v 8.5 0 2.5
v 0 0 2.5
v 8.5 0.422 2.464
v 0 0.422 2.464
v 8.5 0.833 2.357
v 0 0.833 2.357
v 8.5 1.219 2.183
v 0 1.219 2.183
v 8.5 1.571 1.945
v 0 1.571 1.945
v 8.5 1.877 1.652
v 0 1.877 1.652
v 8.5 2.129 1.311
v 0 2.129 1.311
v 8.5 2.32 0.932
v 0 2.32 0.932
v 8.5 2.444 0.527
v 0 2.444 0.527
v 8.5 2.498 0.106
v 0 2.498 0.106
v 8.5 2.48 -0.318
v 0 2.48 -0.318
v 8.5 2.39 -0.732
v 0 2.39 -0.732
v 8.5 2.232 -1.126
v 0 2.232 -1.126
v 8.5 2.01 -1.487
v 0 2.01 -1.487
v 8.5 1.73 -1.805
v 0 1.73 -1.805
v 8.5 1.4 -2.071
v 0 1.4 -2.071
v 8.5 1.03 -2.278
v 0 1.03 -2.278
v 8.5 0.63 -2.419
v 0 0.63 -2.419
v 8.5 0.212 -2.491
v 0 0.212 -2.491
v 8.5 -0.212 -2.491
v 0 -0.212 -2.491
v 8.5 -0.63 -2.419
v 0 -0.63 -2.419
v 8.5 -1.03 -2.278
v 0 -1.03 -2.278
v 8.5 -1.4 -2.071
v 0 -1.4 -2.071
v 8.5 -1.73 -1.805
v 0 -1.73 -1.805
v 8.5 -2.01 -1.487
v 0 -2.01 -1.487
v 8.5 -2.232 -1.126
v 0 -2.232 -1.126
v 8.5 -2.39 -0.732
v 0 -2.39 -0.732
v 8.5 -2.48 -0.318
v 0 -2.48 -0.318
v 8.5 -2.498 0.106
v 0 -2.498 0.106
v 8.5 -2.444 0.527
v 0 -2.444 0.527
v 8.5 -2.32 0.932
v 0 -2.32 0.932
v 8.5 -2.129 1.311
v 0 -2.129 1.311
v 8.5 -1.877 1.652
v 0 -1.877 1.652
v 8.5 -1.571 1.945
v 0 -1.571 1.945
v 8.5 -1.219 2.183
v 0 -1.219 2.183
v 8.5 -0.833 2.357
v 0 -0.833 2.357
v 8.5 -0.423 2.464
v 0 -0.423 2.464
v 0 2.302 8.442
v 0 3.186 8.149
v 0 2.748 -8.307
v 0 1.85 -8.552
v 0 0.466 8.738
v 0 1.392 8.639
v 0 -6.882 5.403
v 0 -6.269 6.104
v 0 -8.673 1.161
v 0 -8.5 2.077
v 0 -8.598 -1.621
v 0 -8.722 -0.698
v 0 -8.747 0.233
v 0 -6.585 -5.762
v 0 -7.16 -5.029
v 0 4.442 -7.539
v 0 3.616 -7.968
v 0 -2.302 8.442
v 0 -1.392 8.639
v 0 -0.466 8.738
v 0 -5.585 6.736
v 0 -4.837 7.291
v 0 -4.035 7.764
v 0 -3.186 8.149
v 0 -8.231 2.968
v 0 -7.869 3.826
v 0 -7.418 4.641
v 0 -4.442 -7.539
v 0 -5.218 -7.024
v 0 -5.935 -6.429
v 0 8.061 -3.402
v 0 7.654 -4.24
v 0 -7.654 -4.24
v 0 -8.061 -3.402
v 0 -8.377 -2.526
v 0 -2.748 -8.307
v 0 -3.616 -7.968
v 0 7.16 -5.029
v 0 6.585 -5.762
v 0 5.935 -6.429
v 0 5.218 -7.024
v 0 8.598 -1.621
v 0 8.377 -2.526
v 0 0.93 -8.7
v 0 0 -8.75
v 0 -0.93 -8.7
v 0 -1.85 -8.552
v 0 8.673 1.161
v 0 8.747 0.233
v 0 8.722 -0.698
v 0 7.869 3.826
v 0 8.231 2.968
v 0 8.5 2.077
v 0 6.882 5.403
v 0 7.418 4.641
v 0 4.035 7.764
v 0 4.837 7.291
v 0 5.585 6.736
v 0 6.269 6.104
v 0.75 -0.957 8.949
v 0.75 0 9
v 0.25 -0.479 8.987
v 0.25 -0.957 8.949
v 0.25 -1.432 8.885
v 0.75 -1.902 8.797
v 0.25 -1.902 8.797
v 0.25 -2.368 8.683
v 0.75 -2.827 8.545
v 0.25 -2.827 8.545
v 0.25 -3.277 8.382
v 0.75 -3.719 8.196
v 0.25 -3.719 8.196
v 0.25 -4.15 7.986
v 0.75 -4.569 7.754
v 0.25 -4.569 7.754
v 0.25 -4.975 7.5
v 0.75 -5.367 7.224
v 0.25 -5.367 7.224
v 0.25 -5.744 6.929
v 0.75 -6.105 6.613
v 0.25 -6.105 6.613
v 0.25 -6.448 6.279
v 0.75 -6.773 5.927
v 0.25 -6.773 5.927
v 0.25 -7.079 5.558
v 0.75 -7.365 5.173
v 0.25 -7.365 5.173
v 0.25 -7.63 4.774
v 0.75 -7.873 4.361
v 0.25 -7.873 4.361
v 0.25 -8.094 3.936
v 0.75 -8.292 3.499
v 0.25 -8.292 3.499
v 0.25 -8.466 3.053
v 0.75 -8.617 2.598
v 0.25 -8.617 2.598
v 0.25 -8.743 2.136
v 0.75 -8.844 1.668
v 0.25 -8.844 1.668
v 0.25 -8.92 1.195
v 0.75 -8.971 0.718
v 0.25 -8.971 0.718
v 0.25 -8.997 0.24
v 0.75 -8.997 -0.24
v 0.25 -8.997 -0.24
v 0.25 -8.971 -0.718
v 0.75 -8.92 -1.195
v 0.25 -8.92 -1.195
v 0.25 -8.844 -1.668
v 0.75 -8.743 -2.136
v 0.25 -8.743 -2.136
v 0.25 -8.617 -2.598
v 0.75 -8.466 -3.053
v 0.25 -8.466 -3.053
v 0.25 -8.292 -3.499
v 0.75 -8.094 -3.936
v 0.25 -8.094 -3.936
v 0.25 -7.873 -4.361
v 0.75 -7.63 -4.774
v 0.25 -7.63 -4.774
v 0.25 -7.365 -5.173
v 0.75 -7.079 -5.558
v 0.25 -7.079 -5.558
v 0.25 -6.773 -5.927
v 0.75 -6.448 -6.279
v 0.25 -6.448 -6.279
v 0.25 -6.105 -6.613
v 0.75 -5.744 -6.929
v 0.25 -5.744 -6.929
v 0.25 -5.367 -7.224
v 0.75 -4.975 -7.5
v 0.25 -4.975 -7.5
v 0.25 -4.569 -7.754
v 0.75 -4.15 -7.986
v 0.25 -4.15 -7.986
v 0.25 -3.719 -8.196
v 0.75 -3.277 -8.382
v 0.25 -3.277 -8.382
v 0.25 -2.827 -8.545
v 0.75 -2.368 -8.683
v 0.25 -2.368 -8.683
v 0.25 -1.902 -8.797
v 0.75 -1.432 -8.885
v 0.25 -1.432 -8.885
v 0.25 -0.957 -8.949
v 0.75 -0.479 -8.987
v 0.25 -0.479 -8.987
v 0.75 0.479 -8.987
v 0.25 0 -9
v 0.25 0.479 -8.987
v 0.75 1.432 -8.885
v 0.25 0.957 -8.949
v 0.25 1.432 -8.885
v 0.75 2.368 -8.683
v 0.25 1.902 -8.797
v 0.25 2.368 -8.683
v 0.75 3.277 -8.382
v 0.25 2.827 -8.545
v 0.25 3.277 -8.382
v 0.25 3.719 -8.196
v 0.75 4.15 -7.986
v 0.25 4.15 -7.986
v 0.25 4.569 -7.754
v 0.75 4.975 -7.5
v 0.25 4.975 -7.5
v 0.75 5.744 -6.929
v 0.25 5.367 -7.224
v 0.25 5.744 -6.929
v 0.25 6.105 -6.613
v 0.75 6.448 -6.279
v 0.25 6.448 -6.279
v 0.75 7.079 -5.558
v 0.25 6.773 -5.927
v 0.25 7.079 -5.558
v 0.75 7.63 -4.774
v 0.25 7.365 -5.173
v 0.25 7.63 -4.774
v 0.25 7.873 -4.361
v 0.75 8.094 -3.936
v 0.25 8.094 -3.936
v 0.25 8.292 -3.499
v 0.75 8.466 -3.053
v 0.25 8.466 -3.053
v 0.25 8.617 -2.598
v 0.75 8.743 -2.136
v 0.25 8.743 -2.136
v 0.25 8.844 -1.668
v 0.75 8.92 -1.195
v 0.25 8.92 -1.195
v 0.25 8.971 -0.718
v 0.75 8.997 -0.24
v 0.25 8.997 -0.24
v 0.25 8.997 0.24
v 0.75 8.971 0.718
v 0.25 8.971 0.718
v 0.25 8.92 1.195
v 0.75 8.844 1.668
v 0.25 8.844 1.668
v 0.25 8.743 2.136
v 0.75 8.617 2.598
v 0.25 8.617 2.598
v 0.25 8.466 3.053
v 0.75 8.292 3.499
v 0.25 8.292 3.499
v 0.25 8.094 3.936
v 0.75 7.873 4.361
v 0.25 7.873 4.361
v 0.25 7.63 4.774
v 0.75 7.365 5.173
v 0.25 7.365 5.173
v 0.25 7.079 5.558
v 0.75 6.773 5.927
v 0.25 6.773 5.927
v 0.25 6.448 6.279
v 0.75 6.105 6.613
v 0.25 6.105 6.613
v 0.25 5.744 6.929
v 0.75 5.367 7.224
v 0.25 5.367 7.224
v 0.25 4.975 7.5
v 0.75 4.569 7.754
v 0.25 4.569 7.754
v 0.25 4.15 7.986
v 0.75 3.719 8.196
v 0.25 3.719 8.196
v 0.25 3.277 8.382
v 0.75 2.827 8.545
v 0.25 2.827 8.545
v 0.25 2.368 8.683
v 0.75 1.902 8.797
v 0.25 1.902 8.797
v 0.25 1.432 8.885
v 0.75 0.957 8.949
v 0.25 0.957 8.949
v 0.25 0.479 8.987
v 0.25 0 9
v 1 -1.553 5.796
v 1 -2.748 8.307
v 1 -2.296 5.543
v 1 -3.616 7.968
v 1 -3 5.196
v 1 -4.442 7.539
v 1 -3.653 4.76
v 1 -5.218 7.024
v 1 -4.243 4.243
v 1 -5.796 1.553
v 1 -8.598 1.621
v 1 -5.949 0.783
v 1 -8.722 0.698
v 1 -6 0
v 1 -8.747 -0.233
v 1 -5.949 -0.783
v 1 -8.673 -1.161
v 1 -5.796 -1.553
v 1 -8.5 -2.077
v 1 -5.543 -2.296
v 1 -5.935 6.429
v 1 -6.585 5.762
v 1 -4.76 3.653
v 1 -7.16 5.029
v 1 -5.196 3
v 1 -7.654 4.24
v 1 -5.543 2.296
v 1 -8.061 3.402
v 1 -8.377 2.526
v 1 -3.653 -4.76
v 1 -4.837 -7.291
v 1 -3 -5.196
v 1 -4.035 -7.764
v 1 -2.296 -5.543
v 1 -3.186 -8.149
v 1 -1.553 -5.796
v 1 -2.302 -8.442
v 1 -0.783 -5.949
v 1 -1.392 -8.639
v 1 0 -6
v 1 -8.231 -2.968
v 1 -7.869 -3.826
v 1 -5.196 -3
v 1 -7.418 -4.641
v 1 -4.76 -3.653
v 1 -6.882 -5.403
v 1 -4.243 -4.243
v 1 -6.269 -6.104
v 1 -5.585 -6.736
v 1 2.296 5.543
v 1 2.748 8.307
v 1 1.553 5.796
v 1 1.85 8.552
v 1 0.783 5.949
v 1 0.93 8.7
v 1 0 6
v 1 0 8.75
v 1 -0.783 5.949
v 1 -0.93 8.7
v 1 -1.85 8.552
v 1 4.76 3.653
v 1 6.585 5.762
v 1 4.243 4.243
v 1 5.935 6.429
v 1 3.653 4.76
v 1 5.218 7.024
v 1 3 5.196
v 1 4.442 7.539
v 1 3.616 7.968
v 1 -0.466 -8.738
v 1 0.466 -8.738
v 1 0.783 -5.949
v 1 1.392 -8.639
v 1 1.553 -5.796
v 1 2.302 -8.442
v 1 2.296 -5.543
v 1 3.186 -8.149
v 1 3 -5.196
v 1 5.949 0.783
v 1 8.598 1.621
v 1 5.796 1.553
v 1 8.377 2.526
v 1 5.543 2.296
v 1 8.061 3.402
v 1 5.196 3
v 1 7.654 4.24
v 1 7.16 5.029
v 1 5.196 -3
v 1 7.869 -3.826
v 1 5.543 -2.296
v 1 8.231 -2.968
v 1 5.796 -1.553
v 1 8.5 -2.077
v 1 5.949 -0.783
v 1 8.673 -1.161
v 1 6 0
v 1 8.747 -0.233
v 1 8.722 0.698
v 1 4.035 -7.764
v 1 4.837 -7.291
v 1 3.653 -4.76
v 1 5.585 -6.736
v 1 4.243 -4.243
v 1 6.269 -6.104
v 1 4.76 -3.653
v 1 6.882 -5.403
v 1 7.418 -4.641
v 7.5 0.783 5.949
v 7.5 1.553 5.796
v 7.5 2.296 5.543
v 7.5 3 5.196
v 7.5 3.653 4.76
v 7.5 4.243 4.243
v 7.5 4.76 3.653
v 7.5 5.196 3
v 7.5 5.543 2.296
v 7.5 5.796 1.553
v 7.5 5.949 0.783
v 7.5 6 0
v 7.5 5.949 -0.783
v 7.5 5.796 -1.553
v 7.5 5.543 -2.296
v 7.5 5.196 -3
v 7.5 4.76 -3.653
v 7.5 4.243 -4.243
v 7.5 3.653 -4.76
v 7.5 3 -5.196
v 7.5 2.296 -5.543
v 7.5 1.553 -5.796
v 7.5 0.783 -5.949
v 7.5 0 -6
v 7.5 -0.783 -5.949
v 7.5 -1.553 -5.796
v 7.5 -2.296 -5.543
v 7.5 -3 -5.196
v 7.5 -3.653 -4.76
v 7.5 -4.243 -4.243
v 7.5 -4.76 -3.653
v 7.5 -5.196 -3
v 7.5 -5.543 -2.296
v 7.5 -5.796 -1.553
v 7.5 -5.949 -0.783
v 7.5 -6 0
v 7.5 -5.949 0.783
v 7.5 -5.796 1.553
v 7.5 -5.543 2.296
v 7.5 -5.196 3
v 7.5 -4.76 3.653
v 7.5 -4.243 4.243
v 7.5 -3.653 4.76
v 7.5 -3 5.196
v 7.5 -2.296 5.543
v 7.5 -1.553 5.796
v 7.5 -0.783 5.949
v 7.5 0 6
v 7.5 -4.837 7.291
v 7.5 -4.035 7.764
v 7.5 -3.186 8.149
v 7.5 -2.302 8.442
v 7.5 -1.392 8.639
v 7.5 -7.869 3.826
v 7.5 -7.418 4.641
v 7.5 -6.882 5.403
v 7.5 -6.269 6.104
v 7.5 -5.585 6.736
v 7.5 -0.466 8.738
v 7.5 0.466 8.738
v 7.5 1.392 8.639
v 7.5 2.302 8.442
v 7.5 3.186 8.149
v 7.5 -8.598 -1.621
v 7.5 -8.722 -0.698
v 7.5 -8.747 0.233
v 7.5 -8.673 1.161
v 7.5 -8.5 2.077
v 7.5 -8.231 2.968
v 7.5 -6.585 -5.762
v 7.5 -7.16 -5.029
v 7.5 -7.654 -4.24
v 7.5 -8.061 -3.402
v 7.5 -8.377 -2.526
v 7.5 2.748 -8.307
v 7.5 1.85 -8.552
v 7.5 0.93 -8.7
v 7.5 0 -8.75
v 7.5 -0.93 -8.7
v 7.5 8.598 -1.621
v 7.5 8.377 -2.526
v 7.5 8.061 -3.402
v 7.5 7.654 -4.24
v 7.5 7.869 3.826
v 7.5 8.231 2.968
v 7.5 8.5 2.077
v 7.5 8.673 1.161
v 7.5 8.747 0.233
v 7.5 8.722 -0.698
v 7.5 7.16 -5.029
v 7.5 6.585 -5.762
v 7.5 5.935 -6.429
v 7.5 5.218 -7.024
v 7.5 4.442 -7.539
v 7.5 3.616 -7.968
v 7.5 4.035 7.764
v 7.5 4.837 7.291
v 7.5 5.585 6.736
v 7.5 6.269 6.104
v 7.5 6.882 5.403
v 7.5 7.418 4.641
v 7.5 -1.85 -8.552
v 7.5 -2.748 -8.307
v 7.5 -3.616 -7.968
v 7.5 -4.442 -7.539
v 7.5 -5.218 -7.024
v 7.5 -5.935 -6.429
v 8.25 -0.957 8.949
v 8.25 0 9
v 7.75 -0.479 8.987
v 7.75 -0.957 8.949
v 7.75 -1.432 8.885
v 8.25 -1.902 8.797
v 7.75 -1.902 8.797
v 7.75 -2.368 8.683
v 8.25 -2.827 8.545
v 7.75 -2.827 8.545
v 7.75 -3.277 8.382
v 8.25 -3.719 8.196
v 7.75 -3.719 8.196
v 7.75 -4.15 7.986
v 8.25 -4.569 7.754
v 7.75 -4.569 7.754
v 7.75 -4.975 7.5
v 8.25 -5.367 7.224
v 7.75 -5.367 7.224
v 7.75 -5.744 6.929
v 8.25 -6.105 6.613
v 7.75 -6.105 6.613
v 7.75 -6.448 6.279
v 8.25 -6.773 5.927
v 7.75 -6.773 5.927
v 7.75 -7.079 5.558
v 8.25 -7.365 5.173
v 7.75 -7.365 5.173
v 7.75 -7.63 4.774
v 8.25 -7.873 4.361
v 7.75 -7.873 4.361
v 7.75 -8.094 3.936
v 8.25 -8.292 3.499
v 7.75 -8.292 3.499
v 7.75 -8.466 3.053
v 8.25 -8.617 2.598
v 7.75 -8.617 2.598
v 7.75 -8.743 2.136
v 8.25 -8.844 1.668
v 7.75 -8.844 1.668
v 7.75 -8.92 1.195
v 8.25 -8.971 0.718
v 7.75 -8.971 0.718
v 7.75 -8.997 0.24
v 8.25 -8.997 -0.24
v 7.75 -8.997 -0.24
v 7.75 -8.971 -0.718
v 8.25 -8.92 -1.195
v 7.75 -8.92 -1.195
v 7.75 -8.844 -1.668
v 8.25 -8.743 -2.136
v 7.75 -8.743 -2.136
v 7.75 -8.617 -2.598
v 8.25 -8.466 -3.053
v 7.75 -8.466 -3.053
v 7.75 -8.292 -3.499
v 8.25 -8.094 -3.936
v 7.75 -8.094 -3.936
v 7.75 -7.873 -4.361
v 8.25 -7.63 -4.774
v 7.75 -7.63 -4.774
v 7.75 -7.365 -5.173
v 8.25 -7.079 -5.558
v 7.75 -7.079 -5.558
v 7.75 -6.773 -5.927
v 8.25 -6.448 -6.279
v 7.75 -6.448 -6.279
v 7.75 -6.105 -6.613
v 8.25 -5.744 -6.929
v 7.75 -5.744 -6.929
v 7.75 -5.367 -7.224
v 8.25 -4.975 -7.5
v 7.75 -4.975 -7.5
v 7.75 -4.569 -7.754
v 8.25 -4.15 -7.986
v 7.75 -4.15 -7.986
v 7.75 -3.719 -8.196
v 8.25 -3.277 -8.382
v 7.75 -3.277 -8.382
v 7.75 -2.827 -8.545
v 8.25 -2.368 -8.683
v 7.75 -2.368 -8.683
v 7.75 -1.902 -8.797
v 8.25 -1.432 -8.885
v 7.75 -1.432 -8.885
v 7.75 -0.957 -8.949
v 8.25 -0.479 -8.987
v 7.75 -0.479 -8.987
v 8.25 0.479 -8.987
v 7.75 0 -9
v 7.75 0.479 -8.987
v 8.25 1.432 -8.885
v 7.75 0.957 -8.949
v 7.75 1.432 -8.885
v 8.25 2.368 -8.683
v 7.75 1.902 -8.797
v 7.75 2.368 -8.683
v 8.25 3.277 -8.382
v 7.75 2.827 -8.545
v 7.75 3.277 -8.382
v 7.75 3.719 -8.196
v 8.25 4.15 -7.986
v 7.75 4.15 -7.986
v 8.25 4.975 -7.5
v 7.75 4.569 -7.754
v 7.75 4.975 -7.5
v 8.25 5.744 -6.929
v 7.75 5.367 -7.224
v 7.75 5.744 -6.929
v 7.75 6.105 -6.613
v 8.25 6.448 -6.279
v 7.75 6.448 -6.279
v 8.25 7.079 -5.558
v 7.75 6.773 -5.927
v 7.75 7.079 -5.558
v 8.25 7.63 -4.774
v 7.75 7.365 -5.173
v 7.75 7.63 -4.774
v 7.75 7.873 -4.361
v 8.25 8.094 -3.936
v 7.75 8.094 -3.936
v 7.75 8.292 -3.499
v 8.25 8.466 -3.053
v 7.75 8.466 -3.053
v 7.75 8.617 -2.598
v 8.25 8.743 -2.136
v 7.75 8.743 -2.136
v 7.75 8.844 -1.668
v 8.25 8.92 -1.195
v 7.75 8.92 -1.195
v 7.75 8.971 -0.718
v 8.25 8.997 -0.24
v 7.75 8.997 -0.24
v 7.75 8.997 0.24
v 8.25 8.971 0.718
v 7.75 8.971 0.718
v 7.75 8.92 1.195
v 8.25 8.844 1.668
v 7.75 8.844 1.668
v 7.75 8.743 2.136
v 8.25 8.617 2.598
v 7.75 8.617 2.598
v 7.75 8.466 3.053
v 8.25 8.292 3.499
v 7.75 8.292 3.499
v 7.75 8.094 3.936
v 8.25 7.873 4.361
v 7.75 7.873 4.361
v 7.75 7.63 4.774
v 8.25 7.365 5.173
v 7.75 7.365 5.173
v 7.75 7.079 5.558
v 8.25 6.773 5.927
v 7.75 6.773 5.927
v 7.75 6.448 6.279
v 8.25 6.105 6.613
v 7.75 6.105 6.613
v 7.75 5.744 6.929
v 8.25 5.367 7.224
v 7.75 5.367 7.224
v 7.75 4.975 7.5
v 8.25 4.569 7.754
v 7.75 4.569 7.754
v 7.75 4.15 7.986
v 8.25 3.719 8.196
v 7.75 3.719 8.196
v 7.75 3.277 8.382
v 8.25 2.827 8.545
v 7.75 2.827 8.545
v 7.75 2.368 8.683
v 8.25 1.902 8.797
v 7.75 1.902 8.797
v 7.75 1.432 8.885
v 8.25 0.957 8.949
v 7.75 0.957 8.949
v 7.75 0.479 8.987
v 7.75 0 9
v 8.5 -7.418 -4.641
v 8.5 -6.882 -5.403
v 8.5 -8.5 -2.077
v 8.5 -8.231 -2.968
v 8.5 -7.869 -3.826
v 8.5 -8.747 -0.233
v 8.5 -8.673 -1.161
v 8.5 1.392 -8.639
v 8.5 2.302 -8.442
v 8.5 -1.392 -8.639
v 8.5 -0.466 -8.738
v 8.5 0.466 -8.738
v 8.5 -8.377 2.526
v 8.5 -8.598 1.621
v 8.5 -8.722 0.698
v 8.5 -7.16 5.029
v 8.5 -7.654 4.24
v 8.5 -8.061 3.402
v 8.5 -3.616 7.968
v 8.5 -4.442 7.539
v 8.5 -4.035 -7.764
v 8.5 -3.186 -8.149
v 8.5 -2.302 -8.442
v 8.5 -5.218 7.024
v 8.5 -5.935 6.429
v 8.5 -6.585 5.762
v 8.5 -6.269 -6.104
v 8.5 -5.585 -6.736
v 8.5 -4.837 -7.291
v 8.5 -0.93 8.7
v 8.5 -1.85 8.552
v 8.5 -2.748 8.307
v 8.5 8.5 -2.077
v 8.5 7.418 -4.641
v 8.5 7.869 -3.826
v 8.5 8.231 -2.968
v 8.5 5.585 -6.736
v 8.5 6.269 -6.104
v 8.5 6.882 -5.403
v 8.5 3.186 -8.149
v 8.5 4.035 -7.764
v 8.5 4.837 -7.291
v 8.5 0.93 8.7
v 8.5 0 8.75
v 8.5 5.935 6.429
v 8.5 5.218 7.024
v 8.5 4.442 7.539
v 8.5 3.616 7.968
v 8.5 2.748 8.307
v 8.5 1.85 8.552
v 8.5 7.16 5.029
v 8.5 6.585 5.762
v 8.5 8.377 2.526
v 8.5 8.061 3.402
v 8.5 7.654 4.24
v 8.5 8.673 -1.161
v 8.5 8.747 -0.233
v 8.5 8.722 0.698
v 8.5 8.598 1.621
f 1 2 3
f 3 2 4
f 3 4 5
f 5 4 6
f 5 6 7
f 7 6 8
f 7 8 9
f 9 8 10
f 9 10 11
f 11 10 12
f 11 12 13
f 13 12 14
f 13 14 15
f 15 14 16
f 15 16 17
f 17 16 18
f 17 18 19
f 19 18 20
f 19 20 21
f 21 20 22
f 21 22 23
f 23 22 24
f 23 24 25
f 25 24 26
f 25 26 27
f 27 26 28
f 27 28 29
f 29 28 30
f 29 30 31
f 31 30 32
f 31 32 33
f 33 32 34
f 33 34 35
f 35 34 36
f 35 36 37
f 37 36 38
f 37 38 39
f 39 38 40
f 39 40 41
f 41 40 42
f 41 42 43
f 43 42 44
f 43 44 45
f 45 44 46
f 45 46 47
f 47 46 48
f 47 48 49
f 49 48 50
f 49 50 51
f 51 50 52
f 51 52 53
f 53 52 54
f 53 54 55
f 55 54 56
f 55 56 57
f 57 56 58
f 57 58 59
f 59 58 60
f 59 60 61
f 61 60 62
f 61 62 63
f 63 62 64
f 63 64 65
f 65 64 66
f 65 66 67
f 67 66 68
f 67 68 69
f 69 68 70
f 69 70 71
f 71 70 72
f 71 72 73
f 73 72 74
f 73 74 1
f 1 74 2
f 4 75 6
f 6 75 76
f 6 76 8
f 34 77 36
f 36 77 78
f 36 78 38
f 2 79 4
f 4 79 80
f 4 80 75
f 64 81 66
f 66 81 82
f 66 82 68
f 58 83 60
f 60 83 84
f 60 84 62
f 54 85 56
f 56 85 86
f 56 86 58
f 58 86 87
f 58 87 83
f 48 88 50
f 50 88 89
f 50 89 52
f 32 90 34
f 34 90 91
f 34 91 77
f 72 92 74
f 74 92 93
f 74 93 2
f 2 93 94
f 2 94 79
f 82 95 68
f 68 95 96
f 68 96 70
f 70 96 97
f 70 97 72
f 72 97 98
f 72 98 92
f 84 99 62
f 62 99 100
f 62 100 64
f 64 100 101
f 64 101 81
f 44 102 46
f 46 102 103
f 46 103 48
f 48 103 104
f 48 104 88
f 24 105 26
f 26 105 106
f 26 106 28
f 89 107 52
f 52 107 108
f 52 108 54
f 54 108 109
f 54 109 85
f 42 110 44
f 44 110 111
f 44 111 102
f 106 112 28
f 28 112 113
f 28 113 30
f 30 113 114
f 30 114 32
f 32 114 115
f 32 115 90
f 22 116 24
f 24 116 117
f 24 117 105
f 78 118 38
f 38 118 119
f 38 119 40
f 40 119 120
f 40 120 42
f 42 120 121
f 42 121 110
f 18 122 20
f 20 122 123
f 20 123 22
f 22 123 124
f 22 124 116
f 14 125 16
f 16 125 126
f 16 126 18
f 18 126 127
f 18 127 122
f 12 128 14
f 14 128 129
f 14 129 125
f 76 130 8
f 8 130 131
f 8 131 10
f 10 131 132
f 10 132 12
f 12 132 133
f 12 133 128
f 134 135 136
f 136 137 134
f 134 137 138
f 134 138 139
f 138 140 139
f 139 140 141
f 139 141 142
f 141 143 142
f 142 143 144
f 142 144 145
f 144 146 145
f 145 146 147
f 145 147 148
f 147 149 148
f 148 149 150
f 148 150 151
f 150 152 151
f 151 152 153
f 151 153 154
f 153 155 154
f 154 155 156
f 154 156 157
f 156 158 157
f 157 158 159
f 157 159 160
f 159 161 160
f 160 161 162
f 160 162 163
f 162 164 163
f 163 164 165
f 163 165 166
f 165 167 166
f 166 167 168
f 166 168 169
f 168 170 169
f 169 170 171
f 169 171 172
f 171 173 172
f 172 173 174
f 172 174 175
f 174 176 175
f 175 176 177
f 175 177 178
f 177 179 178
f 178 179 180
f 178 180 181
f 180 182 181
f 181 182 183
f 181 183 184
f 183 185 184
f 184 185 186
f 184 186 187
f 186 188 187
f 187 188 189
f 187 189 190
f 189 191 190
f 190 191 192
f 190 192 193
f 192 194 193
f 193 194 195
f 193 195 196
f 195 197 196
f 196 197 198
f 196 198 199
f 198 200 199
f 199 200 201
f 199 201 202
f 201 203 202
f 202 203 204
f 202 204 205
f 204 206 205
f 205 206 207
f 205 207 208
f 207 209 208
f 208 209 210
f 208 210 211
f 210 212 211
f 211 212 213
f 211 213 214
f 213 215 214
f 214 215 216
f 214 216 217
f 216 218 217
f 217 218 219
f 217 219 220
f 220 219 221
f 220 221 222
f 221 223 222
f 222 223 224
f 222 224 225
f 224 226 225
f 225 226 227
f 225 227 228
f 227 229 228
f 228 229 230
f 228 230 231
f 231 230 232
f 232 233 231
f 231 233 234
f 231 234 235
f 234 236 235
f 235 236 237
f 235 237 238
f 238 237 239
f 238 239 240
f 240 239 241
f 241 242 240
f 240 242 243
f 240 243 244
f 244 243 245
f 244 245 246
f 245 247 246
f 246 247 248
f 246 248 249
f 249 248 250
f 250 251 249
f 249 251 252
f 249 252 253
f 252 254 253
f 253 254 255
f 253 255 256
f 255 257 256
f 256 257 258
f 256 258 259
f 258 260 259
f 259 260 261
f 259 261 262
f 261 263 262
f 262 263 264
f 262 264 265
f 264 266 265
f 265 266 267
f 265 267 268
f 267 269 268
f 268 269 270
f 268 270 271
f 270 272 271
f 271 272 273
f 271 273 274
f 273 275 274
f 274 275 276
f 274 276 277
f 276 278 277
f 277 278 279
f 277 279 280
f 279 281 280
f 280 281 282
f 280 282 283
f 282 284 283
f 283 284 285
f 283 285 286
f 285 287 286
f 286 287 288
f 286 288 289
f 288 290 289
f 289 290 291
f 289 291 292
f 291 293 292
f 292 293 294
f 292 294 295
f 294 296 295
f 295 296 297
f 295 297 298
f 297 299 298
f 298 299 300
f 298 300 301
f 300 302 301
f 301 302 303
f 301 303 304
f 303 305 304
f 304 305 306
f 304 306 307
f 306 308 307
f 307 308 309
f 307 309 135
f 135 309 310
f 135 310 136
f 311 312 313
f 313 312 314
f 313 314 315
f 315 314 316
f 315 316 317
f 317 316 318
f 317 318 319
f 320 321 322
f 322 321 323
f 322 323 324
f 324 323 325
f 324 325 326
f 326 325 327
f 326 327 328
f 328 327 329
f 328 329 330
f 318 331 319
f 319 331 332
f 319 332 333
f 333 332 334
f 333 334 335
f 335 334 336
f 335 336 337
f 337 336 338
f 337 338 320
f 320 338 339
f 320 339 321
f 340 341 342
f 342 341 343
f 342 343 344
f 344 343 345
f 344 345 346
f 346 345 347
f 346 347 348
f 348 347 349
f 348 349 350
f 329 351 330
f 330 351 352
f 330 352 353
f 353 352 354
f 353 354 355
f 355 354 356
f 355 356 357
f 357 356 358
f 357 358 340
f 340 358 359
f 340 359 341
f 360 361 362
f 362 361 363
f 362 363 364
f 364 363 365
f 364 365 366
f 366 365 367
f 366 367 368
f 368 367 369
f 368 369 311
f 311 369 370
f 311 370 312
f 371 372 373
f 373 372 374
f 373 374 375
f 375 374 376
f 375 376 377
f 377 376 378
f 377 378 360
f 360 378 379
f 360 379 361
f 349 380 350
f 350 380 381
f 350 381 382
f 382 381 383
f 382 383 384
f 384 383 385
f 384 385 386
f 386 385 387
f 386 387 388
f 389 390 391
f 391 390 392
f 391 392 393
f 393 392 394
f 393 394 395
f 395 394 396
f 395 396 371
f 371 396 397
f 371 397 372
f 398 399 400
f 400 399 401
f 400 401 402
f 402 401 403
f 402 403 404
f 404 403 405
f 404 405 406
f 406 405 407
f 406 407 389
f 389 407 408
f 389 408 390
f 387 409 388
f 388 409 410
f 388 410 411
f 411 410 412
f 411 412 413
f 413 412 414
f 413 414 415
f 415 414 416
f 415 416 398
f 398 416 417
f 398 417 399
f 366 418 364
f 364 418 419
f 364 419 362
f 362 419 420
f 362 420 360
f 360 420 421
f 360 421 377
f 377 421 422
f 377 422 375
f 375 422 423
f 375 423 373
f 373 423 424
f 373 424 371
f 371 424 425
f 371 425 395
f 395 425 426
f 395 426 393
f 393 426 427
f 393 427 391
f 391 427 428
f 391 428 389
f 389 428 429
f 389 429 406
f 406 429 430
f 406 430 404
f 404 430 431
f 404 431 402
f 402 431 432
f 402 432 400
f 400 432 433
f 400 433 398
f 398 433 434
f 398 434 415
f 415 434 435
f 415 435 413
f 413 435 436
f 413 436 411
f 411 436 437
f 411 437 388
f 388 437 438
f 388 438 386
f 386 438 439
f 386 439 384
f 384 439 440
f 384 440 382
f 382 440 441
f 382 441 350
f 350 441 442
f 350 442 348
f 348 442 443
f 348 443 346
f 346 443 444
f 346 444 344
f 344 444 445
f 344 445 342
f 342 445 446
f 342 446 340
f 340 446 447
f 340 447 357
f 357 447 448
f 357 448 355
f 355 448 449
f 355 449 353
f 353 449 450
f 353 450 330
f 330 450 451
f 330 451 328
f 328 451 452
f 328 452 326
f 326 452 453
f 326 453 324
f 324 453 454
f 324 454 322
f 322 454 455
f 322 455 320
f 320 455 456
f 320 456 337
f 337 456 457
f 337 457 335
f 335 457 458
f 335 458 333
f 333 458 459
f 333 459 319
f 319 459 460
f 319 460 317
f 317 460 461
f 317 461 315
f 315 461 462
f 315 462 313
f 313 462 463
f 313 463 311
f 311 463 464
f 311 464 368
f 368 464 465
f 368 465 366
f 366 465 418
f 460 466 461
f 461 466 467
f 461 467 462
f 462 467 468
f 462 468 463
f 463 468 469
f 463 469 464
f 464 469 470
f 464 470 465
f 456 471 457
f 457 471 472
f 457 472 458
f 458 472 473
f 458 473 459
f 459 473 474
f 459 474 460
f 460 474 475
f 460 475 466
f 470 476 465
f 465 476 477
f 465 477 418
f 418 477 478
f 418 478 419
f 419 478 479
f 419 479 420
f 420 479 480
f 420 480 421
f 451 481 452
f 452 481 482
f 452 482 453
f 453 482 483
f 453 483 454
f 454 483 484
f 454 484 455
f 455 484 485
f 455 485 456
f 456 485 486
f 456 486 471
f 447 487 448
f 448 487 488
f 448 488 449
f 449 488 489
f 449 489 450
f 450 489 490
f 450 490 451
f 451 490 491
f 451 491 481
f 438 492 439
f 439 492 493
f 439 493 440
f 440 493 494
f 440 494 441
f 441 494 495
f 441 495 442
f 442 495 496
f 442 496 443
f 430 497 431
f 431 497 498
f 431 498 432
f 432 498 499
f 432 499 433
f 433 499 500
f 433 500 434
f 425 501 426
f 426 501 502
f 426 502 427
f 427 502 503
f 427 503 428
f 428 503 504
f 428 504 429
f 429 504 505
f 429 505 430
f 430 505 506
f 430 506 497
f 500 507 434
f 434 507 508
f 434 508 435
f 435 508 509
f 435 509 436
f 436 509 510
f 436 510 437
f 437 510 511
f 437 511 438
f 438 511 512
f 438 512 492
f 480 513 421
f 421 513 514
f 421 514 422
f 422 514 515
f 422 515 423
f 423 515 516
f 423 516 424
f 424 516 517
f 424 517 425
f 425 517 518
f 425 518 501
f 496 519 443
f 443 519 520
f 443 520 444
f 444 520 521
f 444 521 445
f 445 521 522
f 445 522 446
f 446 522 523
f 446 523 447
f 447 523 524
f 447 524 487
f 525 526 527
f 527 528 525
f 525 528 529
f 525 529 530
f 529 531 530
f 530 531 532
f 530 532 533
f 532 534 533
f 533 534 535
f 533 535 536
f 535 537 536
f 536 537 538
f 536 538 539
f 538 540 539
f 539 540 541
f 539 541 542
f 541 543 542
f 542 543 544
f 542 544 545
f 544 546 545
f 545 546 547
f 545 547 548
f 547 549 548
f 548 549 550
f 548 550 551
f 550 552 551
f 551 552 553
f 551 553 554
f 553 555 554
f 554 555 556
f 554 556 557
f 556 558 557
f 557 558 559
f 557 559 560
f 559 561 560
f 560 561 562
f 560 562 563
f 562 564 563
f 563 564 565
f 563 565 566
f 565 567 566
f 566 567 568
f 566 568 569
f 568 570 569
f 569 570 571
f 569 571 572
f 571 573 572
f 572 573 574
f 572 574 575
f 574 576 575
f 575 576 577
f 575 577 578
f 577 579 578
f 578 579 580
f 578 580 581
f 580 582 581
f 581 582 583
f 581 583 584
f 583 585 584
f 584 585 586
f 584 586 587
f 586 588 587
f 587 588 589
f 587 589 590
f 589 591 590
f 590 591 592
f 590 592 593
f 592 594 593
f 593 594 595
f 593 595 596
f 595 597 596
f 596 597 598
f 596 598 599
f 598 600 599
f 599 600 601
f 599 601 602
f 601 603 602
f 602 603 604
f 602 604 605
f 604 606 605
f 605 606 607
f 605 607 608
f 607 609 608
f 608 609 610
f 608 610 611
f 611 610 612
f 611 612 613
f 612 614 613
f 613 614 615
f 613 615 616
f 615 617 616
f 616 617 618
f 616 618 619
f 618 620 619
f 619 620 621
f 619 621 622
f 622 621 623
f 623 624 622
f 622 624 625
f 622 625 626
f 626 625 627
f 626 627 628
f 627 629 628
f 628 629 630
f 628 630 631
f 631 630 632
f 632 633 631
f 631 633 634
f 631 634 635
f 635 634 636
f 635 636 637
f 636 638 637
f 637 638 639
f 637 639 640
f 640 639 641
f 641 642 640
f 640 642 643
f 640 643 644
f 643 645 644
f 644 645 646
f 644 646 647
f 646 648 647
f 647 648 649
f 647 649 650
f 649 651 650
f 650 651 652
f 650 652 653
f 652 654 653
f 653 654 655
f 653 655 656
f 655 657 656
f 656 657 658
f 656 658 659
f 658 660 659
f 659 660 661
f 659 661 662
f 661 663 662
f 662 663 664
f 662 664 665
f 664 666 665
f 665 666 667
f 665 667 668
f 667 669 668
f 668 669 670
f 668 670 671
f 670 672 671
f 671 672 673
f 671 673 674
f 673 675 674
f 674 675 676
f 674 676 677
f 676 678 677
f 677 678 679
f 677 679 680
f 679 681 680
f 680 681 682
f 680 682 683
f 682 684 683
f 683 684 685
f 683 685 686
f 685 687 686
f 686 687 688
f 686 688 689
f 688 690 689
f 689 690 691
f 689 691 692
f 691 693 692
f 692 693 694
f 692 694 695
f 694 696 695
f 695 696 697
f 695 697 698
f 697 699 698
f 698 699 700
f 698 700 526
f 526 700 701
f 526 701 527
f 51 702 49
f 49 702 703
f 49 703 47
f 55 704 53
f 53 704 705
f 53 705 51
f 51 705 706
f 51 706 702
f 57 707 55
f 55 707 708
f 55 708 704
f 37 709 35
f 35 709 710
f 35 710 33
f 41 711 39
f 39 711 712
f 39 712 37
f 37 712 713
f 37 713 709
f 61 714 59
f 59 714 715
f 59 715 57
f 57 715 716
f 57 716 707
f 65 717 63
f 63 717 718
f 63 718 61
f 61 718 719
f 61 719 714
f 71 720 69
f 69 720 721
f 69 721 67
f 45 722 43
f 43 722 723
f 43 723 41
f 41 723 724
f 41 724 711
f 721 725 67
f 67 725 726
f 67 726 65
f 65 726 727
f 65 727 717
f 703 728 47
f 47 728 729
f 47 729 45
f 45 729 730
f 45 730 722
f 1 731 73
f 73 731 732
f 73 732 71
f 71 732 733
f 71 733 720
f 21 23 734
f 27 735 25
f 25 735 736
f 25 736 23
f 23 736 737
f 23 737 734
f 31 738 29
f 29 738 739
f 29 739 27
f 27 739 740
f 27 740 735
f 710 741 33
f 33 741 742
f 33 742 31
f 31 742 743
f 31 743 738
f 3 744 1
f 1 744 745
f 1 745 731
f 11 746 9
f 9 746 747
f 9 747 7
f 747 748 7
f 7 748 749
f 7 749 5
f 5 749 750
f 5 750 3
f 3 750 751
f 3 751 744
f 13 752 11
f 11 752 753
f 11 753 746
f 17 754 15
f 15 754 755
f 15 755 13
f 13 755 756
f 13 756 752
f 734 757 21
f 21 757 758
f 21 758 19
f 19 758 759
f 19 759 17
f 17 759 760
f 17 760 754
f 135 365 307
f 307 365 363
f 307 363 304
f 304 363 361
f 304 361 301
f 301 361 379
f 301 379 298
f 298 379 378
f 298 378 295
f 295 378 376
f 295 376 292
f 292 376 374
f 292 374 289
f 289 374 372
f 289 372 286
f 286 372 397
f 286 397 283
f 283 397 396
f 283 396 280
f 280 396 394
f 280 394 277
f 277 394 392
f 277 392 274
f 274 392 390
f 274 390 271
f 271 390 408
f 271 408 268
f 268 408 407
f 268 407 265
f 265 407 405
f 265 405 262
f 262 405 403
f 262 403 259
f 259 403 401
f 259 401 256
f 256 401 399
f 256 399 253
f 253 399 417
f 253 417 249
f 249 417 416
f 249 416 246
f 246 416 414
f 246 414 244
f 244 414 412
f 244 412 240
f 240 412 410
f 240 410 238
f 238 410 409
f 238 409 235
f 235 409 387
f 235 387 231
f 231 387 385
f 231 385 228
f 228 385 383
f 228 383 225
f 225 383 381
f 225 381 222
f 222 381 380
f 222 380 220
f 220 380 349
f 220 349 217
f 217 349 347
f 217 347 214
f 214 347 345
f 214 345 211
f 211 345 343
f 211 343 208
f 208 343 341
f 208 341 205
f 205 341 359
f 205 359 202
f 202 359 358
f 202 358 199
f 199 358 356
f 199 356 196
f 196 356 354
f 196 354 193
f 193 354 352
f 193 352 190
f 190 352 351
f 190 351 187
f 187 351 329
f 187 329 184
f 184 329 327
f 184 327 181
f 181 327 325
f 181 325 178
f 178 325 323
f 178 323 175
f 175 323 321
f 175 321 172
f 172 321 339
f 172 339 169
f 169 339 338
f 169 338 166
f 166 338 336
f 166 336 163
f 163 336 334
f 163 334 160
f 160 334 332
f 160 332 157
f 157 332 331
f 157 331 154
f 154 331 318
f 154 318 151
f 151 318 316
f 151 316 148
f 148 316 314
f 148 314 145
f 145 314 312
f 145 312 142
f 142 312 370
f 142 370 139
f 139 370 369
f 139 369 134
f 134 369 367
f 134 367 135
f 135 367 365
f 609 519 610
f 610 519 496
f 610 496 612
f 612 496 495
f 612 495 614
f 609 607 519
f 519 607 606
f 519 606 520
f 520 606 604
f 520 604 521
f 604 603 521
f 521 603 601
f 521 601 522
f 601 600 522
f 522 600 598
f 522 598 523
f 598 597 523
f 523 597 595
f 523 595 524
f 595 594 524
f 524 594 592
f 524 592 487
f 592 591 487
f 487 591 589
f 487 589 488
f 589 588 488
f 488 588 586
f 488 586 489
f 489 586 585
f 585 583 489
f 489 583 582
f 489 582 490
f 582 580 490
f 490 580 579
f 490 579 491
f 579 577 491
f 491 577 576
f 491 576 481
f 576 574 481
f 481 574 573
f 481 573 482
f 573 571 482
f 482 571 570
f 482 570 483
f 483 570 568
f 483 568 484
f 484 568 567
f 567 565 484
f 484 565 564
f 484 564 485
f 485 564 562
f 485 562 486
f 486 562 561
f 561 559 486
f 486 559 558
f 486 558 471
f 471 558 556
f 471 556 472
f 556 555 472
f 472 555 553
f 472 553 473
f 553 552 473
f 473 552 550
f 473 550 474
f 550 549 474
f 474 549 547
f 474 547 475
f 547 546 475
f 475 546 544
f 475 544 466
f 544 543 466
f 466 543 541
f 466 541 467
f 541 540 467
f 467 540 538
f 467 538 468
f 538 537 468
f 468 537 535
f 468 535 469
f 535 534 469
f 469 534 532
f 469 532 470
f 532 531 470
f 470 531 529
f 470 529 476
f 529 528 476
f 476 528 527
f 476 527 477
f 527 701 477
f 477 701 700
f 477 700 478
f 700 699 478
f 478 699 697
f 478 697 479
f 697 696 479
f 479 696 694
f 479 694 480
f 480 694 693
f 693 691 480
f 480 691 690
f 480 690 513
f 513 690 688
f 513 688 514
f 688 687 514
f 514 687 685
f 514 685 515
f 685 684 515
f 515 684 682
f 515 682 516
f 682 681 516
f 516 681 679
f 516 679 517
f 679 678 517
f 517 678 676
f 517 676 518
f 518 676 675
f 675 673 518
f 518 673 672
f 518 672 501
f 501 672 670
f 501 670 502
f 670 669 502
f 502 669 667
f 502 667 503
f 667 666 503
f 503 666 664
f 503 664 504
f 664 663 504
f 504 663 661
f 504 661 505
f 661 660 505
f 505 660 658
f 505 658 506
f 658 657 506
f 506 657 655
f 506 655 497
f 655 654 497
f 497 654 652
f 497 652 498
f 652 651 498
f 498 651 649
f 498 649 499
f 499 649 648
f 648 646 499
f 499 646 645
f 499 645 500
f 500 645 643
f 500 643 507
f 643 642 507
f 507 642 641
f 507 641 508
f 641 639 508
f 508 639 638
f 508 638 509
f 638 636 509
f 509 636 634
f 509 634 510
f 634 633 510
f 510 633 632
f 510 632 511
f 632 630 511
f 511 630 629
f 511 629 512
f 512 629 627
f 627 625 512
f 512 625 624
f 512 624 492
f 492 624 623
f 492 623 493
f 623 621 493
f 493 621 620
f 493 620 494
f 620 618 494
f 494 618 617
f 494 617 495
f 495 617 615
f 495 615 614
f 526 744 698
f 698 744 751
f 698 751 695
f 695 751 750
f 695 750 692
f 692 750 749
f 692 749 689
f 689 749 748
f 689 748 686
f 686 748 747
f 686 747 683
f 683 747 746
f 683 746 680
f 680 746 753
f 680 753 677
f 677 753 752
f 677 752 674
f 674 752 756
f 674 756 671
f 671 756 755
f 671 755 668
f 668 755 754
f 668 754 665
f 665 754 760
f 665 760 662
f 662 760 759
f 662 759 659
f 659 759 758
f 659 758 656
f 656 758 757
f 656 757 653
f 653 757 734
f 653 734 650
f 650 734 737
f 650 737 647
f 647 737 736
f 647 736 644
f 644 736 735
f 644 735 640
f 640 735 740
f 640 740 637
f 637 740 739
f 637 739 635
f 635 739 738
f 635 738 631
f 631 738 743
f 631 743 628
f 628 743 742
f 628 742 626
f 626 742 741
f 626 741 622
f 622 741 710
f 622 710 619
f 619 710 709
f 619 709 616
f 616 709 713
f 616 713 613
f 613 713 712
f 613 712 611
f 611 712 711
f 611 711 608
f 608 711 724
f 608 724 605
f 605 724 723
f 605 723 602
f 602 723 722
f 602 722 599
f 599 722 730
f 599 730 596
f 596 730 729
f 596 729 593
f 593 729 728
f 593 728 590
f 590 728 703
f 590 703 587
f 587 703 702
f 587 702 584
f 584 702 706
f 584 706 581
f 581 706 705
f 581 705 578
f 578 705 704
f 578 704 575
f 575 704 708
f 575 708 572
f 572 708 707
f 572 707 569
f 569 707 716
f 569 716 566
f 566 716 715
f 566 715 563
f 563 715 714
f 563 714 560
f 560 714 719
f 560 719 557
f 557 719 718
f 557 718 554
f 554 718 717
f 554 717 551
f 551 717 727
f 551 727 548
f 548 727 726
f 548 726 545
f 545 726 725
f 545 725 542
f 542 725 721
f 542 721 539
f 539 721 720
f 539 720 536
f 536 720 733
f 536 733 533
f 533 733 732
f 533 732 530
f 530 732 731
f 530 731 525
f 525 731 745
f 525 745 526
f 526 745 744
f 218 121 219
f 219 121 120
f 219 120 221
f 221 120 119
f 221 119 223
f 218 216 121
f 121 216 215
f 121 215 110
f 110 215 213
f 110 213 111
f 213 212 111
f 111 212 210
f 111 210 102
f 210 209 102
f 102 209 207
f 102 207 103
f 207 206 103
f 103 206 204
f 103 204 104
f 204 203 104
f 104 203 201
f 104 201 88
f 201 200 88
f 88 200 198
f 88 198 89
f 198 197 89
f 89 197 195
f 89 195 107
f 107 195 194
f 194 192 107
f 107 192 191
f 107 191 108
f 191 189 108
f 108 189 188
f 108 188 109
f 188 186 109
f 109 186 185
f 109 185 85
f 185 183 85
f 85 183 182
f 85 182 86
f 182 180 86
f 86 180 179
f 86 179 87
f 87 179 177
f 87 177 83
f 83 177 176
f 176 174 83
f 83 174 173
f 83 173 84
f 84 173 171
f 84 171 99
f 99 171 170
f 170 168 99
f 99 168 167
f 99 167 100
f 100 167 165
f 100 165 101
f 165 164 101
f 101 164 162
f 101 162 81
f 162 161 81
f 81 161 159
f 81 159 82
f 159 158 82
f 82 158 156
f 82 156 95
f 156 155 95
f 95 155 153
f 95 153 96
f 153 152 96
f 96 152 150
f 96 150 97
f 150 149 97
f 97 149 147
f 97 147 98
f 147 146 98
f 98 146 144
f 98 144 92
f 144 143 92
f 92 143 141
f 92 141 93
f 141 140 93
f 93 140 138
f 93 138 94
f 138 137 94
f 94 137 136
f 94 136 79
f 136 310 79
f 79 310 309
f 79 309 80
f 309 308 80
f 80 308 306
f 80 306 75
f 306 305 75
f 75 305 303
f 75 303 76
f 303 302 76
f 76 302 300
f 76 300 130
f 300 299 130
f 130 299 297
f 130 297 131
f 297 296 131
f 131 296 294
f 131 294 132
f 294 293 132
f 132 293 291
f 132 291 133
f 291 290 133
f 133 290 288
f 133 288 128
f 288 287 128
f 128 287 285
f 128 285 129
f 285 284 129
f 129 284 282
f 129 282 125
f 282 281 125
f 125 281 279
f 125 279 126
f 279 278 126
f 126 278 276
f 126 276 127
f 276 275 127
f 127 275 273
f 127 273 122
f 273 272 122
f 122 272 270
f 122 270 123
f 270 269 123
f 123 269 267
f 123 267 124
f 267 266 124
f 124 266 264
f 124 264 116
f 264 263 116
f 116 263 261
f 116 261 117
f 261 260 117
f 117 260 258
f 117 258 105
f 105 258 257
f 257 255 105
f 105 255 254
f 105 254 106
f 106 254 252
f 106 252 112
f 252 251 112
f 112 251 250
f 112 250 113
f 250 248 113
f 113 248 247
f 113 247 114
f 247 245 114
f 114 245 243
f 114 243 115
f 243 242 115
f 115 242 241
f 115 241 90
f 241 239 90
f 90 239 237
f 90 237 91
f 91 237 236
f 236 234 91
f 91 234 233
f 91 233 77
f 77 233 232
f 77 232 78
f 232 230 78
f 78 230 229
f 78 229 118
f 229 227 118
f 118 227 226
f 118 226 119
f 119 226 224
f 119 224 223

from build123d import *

# Parameters (mm, degrees)
SMUSSO1_SIZE = 0.25


with BuildPart() as part:
    # Schizzo1 → Rivoluzione1 (revolve)
    with BuildSketch(Plane.XY):
        Polygon((0, 2.5), (0, 9), (1, 9), (1, 6), (7.5, 6), (7.5, 9), (8.5, 9), (8.5, 2.5), align=None)
    revolve(axis=Axis((0, 0, 0), (1, 0, 0)))

    # Smusso1
    smusso1_edges = [part.edges().sort_by_distance(p)[0] for p in [
        (8.5, -9, 0),
        (7.5, -9, 0),
        (1, -9, 0),
        (0, -9, 0),
    ]]
    chamfer(smusso1_edges, length=SMUSSO1_SIZE)


solid = part.part
